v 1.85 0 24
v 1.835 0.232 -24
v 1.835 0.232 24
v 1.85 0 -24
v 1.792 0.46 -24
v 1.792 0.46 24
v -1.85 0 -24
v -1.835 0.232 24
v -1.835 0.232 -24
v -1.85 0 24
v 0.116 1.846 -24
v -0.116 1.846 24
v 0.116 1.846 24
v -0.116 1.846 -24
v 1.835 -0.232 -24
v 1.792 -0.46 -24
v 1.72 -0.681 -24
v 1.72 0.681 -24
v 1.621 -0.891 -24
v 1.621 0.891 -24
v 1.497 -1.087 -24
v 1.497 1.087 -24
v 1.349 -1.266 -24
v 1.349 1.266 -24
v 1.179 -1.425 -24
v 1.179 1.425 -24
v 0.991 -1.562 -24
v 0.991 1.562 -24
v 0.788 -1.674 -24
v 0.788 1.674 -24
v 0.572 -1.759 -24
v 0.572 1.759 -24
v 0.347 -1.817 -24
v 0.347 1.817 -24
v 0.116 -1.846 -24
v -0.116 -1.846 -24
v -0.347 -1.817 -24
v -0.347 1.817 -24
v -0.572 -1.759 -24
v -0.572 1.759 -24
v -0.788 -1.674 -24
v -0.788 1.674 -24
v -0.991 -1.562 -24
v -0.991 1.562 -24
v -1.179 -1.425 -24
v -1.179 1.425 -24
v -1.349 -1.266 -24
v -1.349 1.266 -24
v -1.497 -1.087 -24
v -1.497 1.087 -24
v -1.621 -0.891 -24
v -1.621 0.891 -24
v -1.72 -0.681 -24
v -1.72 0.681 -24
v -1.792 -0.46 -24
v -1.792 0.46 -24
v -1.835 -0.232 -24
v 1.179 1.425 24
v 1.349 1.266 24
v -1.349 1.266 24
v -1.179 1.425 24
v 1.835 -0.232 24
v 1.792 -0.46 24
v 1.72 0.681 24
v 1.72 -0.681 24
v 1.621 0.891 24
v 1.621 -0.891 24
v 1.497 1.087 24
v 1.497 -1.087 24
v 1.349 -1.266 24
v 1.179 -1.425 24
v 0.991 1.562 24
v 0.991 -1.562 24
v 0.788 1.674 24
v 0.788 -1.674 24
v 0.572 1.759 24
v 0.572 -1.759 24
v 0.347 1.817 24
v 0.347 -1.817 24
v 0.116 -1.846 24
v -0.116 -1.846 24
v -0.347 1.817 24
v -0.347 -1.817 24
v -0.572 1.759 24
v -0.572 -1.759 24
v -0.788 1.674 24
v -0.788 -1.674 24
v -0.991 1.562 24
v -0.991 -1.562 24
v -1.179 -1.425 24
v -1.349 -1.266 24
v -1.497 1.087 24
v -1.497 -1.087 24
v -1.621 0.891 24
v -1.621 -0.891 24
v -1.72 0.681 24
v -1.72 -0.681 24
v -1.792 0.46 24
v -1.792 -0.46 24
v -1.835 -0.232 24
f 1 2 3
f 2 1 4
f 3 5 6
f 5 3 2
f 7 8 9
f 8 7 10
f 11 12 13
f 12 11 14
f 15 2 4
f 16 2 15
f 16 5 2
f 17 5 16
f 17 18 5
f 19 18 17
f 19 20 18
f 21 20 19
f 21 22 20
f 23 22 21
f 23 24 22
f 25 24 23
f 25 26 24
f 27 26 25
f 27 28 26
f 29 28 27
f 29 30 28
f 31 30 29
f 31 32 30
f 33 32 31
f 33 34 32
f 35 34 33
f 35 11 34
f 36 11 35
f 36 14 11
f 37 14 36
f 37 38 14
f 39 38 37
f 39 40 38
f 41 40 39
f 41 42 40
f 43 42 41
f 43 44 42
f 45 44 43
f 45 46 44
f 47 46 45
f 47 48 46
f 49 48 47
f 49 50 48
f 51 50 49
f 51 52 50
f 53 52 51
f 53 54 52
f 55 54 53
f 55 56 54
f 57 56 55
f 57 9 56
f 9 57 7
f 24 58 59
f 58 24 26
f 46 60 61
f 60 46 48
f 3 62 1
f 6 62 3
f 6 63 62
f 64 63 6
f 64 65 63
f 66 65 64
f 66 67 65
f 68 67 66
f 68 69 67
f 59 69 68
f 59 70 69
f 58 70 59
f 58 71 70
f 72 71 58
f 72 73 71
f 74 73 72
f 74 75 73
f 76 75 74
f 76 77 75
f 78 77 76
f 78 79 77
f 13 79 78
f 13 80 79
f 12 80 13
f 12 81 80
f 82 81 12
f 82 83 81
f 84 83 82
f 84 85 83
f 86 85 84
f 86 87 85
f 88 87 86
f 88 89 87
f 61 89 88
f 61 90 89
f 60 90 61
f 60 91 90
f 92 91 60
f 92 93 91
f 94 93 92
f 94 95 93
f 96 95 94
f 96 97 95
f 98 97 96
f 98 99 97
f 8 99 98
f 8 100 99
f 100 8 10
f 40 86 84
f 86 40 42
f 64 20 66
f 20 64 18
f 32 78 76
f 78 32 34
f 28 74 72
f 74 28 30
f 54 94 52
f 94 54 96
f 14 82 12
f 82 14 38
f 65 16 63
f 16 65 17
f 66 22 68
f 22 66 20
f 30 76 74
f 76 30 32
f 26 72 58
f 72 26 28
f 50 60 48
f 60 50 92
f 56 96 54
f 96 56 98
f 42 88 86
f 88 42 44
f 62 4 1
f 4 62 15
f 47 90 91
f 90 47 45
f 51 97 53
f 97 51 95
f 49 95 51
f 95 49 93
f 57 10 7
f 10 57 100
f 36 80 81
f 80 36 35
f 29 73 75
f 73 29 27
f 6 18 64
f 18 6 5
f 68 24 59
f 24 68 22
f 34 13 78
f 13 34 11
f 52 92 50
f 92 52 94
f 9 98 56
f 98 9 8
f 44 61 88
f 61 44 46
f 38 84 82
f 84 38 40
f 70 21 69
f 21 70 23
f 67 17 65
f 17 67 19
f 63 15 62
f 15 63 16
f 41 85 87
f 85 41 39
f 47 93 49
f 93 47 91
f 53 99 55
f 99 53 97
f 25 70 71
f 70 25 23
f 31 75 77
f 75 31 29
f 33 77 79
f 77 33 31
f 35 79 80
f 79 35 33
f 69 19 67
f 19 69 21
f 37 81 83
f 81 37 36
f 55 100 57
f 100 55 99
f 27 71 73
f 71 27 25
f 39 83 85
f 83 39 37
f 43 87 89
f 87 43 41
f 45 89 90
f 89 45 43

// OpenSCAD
$fn = 50;


difference() {
	union() {
		translate(v = [0, 0, -24.0000000000]) {
			cylinder(h = 48, r = 1.8500000000);
		}
	}
	union() {
		translate(v = [0, 0, -100.0000000000]) {
			cylinder(h = 200, r = 0);
		}
	}
}
